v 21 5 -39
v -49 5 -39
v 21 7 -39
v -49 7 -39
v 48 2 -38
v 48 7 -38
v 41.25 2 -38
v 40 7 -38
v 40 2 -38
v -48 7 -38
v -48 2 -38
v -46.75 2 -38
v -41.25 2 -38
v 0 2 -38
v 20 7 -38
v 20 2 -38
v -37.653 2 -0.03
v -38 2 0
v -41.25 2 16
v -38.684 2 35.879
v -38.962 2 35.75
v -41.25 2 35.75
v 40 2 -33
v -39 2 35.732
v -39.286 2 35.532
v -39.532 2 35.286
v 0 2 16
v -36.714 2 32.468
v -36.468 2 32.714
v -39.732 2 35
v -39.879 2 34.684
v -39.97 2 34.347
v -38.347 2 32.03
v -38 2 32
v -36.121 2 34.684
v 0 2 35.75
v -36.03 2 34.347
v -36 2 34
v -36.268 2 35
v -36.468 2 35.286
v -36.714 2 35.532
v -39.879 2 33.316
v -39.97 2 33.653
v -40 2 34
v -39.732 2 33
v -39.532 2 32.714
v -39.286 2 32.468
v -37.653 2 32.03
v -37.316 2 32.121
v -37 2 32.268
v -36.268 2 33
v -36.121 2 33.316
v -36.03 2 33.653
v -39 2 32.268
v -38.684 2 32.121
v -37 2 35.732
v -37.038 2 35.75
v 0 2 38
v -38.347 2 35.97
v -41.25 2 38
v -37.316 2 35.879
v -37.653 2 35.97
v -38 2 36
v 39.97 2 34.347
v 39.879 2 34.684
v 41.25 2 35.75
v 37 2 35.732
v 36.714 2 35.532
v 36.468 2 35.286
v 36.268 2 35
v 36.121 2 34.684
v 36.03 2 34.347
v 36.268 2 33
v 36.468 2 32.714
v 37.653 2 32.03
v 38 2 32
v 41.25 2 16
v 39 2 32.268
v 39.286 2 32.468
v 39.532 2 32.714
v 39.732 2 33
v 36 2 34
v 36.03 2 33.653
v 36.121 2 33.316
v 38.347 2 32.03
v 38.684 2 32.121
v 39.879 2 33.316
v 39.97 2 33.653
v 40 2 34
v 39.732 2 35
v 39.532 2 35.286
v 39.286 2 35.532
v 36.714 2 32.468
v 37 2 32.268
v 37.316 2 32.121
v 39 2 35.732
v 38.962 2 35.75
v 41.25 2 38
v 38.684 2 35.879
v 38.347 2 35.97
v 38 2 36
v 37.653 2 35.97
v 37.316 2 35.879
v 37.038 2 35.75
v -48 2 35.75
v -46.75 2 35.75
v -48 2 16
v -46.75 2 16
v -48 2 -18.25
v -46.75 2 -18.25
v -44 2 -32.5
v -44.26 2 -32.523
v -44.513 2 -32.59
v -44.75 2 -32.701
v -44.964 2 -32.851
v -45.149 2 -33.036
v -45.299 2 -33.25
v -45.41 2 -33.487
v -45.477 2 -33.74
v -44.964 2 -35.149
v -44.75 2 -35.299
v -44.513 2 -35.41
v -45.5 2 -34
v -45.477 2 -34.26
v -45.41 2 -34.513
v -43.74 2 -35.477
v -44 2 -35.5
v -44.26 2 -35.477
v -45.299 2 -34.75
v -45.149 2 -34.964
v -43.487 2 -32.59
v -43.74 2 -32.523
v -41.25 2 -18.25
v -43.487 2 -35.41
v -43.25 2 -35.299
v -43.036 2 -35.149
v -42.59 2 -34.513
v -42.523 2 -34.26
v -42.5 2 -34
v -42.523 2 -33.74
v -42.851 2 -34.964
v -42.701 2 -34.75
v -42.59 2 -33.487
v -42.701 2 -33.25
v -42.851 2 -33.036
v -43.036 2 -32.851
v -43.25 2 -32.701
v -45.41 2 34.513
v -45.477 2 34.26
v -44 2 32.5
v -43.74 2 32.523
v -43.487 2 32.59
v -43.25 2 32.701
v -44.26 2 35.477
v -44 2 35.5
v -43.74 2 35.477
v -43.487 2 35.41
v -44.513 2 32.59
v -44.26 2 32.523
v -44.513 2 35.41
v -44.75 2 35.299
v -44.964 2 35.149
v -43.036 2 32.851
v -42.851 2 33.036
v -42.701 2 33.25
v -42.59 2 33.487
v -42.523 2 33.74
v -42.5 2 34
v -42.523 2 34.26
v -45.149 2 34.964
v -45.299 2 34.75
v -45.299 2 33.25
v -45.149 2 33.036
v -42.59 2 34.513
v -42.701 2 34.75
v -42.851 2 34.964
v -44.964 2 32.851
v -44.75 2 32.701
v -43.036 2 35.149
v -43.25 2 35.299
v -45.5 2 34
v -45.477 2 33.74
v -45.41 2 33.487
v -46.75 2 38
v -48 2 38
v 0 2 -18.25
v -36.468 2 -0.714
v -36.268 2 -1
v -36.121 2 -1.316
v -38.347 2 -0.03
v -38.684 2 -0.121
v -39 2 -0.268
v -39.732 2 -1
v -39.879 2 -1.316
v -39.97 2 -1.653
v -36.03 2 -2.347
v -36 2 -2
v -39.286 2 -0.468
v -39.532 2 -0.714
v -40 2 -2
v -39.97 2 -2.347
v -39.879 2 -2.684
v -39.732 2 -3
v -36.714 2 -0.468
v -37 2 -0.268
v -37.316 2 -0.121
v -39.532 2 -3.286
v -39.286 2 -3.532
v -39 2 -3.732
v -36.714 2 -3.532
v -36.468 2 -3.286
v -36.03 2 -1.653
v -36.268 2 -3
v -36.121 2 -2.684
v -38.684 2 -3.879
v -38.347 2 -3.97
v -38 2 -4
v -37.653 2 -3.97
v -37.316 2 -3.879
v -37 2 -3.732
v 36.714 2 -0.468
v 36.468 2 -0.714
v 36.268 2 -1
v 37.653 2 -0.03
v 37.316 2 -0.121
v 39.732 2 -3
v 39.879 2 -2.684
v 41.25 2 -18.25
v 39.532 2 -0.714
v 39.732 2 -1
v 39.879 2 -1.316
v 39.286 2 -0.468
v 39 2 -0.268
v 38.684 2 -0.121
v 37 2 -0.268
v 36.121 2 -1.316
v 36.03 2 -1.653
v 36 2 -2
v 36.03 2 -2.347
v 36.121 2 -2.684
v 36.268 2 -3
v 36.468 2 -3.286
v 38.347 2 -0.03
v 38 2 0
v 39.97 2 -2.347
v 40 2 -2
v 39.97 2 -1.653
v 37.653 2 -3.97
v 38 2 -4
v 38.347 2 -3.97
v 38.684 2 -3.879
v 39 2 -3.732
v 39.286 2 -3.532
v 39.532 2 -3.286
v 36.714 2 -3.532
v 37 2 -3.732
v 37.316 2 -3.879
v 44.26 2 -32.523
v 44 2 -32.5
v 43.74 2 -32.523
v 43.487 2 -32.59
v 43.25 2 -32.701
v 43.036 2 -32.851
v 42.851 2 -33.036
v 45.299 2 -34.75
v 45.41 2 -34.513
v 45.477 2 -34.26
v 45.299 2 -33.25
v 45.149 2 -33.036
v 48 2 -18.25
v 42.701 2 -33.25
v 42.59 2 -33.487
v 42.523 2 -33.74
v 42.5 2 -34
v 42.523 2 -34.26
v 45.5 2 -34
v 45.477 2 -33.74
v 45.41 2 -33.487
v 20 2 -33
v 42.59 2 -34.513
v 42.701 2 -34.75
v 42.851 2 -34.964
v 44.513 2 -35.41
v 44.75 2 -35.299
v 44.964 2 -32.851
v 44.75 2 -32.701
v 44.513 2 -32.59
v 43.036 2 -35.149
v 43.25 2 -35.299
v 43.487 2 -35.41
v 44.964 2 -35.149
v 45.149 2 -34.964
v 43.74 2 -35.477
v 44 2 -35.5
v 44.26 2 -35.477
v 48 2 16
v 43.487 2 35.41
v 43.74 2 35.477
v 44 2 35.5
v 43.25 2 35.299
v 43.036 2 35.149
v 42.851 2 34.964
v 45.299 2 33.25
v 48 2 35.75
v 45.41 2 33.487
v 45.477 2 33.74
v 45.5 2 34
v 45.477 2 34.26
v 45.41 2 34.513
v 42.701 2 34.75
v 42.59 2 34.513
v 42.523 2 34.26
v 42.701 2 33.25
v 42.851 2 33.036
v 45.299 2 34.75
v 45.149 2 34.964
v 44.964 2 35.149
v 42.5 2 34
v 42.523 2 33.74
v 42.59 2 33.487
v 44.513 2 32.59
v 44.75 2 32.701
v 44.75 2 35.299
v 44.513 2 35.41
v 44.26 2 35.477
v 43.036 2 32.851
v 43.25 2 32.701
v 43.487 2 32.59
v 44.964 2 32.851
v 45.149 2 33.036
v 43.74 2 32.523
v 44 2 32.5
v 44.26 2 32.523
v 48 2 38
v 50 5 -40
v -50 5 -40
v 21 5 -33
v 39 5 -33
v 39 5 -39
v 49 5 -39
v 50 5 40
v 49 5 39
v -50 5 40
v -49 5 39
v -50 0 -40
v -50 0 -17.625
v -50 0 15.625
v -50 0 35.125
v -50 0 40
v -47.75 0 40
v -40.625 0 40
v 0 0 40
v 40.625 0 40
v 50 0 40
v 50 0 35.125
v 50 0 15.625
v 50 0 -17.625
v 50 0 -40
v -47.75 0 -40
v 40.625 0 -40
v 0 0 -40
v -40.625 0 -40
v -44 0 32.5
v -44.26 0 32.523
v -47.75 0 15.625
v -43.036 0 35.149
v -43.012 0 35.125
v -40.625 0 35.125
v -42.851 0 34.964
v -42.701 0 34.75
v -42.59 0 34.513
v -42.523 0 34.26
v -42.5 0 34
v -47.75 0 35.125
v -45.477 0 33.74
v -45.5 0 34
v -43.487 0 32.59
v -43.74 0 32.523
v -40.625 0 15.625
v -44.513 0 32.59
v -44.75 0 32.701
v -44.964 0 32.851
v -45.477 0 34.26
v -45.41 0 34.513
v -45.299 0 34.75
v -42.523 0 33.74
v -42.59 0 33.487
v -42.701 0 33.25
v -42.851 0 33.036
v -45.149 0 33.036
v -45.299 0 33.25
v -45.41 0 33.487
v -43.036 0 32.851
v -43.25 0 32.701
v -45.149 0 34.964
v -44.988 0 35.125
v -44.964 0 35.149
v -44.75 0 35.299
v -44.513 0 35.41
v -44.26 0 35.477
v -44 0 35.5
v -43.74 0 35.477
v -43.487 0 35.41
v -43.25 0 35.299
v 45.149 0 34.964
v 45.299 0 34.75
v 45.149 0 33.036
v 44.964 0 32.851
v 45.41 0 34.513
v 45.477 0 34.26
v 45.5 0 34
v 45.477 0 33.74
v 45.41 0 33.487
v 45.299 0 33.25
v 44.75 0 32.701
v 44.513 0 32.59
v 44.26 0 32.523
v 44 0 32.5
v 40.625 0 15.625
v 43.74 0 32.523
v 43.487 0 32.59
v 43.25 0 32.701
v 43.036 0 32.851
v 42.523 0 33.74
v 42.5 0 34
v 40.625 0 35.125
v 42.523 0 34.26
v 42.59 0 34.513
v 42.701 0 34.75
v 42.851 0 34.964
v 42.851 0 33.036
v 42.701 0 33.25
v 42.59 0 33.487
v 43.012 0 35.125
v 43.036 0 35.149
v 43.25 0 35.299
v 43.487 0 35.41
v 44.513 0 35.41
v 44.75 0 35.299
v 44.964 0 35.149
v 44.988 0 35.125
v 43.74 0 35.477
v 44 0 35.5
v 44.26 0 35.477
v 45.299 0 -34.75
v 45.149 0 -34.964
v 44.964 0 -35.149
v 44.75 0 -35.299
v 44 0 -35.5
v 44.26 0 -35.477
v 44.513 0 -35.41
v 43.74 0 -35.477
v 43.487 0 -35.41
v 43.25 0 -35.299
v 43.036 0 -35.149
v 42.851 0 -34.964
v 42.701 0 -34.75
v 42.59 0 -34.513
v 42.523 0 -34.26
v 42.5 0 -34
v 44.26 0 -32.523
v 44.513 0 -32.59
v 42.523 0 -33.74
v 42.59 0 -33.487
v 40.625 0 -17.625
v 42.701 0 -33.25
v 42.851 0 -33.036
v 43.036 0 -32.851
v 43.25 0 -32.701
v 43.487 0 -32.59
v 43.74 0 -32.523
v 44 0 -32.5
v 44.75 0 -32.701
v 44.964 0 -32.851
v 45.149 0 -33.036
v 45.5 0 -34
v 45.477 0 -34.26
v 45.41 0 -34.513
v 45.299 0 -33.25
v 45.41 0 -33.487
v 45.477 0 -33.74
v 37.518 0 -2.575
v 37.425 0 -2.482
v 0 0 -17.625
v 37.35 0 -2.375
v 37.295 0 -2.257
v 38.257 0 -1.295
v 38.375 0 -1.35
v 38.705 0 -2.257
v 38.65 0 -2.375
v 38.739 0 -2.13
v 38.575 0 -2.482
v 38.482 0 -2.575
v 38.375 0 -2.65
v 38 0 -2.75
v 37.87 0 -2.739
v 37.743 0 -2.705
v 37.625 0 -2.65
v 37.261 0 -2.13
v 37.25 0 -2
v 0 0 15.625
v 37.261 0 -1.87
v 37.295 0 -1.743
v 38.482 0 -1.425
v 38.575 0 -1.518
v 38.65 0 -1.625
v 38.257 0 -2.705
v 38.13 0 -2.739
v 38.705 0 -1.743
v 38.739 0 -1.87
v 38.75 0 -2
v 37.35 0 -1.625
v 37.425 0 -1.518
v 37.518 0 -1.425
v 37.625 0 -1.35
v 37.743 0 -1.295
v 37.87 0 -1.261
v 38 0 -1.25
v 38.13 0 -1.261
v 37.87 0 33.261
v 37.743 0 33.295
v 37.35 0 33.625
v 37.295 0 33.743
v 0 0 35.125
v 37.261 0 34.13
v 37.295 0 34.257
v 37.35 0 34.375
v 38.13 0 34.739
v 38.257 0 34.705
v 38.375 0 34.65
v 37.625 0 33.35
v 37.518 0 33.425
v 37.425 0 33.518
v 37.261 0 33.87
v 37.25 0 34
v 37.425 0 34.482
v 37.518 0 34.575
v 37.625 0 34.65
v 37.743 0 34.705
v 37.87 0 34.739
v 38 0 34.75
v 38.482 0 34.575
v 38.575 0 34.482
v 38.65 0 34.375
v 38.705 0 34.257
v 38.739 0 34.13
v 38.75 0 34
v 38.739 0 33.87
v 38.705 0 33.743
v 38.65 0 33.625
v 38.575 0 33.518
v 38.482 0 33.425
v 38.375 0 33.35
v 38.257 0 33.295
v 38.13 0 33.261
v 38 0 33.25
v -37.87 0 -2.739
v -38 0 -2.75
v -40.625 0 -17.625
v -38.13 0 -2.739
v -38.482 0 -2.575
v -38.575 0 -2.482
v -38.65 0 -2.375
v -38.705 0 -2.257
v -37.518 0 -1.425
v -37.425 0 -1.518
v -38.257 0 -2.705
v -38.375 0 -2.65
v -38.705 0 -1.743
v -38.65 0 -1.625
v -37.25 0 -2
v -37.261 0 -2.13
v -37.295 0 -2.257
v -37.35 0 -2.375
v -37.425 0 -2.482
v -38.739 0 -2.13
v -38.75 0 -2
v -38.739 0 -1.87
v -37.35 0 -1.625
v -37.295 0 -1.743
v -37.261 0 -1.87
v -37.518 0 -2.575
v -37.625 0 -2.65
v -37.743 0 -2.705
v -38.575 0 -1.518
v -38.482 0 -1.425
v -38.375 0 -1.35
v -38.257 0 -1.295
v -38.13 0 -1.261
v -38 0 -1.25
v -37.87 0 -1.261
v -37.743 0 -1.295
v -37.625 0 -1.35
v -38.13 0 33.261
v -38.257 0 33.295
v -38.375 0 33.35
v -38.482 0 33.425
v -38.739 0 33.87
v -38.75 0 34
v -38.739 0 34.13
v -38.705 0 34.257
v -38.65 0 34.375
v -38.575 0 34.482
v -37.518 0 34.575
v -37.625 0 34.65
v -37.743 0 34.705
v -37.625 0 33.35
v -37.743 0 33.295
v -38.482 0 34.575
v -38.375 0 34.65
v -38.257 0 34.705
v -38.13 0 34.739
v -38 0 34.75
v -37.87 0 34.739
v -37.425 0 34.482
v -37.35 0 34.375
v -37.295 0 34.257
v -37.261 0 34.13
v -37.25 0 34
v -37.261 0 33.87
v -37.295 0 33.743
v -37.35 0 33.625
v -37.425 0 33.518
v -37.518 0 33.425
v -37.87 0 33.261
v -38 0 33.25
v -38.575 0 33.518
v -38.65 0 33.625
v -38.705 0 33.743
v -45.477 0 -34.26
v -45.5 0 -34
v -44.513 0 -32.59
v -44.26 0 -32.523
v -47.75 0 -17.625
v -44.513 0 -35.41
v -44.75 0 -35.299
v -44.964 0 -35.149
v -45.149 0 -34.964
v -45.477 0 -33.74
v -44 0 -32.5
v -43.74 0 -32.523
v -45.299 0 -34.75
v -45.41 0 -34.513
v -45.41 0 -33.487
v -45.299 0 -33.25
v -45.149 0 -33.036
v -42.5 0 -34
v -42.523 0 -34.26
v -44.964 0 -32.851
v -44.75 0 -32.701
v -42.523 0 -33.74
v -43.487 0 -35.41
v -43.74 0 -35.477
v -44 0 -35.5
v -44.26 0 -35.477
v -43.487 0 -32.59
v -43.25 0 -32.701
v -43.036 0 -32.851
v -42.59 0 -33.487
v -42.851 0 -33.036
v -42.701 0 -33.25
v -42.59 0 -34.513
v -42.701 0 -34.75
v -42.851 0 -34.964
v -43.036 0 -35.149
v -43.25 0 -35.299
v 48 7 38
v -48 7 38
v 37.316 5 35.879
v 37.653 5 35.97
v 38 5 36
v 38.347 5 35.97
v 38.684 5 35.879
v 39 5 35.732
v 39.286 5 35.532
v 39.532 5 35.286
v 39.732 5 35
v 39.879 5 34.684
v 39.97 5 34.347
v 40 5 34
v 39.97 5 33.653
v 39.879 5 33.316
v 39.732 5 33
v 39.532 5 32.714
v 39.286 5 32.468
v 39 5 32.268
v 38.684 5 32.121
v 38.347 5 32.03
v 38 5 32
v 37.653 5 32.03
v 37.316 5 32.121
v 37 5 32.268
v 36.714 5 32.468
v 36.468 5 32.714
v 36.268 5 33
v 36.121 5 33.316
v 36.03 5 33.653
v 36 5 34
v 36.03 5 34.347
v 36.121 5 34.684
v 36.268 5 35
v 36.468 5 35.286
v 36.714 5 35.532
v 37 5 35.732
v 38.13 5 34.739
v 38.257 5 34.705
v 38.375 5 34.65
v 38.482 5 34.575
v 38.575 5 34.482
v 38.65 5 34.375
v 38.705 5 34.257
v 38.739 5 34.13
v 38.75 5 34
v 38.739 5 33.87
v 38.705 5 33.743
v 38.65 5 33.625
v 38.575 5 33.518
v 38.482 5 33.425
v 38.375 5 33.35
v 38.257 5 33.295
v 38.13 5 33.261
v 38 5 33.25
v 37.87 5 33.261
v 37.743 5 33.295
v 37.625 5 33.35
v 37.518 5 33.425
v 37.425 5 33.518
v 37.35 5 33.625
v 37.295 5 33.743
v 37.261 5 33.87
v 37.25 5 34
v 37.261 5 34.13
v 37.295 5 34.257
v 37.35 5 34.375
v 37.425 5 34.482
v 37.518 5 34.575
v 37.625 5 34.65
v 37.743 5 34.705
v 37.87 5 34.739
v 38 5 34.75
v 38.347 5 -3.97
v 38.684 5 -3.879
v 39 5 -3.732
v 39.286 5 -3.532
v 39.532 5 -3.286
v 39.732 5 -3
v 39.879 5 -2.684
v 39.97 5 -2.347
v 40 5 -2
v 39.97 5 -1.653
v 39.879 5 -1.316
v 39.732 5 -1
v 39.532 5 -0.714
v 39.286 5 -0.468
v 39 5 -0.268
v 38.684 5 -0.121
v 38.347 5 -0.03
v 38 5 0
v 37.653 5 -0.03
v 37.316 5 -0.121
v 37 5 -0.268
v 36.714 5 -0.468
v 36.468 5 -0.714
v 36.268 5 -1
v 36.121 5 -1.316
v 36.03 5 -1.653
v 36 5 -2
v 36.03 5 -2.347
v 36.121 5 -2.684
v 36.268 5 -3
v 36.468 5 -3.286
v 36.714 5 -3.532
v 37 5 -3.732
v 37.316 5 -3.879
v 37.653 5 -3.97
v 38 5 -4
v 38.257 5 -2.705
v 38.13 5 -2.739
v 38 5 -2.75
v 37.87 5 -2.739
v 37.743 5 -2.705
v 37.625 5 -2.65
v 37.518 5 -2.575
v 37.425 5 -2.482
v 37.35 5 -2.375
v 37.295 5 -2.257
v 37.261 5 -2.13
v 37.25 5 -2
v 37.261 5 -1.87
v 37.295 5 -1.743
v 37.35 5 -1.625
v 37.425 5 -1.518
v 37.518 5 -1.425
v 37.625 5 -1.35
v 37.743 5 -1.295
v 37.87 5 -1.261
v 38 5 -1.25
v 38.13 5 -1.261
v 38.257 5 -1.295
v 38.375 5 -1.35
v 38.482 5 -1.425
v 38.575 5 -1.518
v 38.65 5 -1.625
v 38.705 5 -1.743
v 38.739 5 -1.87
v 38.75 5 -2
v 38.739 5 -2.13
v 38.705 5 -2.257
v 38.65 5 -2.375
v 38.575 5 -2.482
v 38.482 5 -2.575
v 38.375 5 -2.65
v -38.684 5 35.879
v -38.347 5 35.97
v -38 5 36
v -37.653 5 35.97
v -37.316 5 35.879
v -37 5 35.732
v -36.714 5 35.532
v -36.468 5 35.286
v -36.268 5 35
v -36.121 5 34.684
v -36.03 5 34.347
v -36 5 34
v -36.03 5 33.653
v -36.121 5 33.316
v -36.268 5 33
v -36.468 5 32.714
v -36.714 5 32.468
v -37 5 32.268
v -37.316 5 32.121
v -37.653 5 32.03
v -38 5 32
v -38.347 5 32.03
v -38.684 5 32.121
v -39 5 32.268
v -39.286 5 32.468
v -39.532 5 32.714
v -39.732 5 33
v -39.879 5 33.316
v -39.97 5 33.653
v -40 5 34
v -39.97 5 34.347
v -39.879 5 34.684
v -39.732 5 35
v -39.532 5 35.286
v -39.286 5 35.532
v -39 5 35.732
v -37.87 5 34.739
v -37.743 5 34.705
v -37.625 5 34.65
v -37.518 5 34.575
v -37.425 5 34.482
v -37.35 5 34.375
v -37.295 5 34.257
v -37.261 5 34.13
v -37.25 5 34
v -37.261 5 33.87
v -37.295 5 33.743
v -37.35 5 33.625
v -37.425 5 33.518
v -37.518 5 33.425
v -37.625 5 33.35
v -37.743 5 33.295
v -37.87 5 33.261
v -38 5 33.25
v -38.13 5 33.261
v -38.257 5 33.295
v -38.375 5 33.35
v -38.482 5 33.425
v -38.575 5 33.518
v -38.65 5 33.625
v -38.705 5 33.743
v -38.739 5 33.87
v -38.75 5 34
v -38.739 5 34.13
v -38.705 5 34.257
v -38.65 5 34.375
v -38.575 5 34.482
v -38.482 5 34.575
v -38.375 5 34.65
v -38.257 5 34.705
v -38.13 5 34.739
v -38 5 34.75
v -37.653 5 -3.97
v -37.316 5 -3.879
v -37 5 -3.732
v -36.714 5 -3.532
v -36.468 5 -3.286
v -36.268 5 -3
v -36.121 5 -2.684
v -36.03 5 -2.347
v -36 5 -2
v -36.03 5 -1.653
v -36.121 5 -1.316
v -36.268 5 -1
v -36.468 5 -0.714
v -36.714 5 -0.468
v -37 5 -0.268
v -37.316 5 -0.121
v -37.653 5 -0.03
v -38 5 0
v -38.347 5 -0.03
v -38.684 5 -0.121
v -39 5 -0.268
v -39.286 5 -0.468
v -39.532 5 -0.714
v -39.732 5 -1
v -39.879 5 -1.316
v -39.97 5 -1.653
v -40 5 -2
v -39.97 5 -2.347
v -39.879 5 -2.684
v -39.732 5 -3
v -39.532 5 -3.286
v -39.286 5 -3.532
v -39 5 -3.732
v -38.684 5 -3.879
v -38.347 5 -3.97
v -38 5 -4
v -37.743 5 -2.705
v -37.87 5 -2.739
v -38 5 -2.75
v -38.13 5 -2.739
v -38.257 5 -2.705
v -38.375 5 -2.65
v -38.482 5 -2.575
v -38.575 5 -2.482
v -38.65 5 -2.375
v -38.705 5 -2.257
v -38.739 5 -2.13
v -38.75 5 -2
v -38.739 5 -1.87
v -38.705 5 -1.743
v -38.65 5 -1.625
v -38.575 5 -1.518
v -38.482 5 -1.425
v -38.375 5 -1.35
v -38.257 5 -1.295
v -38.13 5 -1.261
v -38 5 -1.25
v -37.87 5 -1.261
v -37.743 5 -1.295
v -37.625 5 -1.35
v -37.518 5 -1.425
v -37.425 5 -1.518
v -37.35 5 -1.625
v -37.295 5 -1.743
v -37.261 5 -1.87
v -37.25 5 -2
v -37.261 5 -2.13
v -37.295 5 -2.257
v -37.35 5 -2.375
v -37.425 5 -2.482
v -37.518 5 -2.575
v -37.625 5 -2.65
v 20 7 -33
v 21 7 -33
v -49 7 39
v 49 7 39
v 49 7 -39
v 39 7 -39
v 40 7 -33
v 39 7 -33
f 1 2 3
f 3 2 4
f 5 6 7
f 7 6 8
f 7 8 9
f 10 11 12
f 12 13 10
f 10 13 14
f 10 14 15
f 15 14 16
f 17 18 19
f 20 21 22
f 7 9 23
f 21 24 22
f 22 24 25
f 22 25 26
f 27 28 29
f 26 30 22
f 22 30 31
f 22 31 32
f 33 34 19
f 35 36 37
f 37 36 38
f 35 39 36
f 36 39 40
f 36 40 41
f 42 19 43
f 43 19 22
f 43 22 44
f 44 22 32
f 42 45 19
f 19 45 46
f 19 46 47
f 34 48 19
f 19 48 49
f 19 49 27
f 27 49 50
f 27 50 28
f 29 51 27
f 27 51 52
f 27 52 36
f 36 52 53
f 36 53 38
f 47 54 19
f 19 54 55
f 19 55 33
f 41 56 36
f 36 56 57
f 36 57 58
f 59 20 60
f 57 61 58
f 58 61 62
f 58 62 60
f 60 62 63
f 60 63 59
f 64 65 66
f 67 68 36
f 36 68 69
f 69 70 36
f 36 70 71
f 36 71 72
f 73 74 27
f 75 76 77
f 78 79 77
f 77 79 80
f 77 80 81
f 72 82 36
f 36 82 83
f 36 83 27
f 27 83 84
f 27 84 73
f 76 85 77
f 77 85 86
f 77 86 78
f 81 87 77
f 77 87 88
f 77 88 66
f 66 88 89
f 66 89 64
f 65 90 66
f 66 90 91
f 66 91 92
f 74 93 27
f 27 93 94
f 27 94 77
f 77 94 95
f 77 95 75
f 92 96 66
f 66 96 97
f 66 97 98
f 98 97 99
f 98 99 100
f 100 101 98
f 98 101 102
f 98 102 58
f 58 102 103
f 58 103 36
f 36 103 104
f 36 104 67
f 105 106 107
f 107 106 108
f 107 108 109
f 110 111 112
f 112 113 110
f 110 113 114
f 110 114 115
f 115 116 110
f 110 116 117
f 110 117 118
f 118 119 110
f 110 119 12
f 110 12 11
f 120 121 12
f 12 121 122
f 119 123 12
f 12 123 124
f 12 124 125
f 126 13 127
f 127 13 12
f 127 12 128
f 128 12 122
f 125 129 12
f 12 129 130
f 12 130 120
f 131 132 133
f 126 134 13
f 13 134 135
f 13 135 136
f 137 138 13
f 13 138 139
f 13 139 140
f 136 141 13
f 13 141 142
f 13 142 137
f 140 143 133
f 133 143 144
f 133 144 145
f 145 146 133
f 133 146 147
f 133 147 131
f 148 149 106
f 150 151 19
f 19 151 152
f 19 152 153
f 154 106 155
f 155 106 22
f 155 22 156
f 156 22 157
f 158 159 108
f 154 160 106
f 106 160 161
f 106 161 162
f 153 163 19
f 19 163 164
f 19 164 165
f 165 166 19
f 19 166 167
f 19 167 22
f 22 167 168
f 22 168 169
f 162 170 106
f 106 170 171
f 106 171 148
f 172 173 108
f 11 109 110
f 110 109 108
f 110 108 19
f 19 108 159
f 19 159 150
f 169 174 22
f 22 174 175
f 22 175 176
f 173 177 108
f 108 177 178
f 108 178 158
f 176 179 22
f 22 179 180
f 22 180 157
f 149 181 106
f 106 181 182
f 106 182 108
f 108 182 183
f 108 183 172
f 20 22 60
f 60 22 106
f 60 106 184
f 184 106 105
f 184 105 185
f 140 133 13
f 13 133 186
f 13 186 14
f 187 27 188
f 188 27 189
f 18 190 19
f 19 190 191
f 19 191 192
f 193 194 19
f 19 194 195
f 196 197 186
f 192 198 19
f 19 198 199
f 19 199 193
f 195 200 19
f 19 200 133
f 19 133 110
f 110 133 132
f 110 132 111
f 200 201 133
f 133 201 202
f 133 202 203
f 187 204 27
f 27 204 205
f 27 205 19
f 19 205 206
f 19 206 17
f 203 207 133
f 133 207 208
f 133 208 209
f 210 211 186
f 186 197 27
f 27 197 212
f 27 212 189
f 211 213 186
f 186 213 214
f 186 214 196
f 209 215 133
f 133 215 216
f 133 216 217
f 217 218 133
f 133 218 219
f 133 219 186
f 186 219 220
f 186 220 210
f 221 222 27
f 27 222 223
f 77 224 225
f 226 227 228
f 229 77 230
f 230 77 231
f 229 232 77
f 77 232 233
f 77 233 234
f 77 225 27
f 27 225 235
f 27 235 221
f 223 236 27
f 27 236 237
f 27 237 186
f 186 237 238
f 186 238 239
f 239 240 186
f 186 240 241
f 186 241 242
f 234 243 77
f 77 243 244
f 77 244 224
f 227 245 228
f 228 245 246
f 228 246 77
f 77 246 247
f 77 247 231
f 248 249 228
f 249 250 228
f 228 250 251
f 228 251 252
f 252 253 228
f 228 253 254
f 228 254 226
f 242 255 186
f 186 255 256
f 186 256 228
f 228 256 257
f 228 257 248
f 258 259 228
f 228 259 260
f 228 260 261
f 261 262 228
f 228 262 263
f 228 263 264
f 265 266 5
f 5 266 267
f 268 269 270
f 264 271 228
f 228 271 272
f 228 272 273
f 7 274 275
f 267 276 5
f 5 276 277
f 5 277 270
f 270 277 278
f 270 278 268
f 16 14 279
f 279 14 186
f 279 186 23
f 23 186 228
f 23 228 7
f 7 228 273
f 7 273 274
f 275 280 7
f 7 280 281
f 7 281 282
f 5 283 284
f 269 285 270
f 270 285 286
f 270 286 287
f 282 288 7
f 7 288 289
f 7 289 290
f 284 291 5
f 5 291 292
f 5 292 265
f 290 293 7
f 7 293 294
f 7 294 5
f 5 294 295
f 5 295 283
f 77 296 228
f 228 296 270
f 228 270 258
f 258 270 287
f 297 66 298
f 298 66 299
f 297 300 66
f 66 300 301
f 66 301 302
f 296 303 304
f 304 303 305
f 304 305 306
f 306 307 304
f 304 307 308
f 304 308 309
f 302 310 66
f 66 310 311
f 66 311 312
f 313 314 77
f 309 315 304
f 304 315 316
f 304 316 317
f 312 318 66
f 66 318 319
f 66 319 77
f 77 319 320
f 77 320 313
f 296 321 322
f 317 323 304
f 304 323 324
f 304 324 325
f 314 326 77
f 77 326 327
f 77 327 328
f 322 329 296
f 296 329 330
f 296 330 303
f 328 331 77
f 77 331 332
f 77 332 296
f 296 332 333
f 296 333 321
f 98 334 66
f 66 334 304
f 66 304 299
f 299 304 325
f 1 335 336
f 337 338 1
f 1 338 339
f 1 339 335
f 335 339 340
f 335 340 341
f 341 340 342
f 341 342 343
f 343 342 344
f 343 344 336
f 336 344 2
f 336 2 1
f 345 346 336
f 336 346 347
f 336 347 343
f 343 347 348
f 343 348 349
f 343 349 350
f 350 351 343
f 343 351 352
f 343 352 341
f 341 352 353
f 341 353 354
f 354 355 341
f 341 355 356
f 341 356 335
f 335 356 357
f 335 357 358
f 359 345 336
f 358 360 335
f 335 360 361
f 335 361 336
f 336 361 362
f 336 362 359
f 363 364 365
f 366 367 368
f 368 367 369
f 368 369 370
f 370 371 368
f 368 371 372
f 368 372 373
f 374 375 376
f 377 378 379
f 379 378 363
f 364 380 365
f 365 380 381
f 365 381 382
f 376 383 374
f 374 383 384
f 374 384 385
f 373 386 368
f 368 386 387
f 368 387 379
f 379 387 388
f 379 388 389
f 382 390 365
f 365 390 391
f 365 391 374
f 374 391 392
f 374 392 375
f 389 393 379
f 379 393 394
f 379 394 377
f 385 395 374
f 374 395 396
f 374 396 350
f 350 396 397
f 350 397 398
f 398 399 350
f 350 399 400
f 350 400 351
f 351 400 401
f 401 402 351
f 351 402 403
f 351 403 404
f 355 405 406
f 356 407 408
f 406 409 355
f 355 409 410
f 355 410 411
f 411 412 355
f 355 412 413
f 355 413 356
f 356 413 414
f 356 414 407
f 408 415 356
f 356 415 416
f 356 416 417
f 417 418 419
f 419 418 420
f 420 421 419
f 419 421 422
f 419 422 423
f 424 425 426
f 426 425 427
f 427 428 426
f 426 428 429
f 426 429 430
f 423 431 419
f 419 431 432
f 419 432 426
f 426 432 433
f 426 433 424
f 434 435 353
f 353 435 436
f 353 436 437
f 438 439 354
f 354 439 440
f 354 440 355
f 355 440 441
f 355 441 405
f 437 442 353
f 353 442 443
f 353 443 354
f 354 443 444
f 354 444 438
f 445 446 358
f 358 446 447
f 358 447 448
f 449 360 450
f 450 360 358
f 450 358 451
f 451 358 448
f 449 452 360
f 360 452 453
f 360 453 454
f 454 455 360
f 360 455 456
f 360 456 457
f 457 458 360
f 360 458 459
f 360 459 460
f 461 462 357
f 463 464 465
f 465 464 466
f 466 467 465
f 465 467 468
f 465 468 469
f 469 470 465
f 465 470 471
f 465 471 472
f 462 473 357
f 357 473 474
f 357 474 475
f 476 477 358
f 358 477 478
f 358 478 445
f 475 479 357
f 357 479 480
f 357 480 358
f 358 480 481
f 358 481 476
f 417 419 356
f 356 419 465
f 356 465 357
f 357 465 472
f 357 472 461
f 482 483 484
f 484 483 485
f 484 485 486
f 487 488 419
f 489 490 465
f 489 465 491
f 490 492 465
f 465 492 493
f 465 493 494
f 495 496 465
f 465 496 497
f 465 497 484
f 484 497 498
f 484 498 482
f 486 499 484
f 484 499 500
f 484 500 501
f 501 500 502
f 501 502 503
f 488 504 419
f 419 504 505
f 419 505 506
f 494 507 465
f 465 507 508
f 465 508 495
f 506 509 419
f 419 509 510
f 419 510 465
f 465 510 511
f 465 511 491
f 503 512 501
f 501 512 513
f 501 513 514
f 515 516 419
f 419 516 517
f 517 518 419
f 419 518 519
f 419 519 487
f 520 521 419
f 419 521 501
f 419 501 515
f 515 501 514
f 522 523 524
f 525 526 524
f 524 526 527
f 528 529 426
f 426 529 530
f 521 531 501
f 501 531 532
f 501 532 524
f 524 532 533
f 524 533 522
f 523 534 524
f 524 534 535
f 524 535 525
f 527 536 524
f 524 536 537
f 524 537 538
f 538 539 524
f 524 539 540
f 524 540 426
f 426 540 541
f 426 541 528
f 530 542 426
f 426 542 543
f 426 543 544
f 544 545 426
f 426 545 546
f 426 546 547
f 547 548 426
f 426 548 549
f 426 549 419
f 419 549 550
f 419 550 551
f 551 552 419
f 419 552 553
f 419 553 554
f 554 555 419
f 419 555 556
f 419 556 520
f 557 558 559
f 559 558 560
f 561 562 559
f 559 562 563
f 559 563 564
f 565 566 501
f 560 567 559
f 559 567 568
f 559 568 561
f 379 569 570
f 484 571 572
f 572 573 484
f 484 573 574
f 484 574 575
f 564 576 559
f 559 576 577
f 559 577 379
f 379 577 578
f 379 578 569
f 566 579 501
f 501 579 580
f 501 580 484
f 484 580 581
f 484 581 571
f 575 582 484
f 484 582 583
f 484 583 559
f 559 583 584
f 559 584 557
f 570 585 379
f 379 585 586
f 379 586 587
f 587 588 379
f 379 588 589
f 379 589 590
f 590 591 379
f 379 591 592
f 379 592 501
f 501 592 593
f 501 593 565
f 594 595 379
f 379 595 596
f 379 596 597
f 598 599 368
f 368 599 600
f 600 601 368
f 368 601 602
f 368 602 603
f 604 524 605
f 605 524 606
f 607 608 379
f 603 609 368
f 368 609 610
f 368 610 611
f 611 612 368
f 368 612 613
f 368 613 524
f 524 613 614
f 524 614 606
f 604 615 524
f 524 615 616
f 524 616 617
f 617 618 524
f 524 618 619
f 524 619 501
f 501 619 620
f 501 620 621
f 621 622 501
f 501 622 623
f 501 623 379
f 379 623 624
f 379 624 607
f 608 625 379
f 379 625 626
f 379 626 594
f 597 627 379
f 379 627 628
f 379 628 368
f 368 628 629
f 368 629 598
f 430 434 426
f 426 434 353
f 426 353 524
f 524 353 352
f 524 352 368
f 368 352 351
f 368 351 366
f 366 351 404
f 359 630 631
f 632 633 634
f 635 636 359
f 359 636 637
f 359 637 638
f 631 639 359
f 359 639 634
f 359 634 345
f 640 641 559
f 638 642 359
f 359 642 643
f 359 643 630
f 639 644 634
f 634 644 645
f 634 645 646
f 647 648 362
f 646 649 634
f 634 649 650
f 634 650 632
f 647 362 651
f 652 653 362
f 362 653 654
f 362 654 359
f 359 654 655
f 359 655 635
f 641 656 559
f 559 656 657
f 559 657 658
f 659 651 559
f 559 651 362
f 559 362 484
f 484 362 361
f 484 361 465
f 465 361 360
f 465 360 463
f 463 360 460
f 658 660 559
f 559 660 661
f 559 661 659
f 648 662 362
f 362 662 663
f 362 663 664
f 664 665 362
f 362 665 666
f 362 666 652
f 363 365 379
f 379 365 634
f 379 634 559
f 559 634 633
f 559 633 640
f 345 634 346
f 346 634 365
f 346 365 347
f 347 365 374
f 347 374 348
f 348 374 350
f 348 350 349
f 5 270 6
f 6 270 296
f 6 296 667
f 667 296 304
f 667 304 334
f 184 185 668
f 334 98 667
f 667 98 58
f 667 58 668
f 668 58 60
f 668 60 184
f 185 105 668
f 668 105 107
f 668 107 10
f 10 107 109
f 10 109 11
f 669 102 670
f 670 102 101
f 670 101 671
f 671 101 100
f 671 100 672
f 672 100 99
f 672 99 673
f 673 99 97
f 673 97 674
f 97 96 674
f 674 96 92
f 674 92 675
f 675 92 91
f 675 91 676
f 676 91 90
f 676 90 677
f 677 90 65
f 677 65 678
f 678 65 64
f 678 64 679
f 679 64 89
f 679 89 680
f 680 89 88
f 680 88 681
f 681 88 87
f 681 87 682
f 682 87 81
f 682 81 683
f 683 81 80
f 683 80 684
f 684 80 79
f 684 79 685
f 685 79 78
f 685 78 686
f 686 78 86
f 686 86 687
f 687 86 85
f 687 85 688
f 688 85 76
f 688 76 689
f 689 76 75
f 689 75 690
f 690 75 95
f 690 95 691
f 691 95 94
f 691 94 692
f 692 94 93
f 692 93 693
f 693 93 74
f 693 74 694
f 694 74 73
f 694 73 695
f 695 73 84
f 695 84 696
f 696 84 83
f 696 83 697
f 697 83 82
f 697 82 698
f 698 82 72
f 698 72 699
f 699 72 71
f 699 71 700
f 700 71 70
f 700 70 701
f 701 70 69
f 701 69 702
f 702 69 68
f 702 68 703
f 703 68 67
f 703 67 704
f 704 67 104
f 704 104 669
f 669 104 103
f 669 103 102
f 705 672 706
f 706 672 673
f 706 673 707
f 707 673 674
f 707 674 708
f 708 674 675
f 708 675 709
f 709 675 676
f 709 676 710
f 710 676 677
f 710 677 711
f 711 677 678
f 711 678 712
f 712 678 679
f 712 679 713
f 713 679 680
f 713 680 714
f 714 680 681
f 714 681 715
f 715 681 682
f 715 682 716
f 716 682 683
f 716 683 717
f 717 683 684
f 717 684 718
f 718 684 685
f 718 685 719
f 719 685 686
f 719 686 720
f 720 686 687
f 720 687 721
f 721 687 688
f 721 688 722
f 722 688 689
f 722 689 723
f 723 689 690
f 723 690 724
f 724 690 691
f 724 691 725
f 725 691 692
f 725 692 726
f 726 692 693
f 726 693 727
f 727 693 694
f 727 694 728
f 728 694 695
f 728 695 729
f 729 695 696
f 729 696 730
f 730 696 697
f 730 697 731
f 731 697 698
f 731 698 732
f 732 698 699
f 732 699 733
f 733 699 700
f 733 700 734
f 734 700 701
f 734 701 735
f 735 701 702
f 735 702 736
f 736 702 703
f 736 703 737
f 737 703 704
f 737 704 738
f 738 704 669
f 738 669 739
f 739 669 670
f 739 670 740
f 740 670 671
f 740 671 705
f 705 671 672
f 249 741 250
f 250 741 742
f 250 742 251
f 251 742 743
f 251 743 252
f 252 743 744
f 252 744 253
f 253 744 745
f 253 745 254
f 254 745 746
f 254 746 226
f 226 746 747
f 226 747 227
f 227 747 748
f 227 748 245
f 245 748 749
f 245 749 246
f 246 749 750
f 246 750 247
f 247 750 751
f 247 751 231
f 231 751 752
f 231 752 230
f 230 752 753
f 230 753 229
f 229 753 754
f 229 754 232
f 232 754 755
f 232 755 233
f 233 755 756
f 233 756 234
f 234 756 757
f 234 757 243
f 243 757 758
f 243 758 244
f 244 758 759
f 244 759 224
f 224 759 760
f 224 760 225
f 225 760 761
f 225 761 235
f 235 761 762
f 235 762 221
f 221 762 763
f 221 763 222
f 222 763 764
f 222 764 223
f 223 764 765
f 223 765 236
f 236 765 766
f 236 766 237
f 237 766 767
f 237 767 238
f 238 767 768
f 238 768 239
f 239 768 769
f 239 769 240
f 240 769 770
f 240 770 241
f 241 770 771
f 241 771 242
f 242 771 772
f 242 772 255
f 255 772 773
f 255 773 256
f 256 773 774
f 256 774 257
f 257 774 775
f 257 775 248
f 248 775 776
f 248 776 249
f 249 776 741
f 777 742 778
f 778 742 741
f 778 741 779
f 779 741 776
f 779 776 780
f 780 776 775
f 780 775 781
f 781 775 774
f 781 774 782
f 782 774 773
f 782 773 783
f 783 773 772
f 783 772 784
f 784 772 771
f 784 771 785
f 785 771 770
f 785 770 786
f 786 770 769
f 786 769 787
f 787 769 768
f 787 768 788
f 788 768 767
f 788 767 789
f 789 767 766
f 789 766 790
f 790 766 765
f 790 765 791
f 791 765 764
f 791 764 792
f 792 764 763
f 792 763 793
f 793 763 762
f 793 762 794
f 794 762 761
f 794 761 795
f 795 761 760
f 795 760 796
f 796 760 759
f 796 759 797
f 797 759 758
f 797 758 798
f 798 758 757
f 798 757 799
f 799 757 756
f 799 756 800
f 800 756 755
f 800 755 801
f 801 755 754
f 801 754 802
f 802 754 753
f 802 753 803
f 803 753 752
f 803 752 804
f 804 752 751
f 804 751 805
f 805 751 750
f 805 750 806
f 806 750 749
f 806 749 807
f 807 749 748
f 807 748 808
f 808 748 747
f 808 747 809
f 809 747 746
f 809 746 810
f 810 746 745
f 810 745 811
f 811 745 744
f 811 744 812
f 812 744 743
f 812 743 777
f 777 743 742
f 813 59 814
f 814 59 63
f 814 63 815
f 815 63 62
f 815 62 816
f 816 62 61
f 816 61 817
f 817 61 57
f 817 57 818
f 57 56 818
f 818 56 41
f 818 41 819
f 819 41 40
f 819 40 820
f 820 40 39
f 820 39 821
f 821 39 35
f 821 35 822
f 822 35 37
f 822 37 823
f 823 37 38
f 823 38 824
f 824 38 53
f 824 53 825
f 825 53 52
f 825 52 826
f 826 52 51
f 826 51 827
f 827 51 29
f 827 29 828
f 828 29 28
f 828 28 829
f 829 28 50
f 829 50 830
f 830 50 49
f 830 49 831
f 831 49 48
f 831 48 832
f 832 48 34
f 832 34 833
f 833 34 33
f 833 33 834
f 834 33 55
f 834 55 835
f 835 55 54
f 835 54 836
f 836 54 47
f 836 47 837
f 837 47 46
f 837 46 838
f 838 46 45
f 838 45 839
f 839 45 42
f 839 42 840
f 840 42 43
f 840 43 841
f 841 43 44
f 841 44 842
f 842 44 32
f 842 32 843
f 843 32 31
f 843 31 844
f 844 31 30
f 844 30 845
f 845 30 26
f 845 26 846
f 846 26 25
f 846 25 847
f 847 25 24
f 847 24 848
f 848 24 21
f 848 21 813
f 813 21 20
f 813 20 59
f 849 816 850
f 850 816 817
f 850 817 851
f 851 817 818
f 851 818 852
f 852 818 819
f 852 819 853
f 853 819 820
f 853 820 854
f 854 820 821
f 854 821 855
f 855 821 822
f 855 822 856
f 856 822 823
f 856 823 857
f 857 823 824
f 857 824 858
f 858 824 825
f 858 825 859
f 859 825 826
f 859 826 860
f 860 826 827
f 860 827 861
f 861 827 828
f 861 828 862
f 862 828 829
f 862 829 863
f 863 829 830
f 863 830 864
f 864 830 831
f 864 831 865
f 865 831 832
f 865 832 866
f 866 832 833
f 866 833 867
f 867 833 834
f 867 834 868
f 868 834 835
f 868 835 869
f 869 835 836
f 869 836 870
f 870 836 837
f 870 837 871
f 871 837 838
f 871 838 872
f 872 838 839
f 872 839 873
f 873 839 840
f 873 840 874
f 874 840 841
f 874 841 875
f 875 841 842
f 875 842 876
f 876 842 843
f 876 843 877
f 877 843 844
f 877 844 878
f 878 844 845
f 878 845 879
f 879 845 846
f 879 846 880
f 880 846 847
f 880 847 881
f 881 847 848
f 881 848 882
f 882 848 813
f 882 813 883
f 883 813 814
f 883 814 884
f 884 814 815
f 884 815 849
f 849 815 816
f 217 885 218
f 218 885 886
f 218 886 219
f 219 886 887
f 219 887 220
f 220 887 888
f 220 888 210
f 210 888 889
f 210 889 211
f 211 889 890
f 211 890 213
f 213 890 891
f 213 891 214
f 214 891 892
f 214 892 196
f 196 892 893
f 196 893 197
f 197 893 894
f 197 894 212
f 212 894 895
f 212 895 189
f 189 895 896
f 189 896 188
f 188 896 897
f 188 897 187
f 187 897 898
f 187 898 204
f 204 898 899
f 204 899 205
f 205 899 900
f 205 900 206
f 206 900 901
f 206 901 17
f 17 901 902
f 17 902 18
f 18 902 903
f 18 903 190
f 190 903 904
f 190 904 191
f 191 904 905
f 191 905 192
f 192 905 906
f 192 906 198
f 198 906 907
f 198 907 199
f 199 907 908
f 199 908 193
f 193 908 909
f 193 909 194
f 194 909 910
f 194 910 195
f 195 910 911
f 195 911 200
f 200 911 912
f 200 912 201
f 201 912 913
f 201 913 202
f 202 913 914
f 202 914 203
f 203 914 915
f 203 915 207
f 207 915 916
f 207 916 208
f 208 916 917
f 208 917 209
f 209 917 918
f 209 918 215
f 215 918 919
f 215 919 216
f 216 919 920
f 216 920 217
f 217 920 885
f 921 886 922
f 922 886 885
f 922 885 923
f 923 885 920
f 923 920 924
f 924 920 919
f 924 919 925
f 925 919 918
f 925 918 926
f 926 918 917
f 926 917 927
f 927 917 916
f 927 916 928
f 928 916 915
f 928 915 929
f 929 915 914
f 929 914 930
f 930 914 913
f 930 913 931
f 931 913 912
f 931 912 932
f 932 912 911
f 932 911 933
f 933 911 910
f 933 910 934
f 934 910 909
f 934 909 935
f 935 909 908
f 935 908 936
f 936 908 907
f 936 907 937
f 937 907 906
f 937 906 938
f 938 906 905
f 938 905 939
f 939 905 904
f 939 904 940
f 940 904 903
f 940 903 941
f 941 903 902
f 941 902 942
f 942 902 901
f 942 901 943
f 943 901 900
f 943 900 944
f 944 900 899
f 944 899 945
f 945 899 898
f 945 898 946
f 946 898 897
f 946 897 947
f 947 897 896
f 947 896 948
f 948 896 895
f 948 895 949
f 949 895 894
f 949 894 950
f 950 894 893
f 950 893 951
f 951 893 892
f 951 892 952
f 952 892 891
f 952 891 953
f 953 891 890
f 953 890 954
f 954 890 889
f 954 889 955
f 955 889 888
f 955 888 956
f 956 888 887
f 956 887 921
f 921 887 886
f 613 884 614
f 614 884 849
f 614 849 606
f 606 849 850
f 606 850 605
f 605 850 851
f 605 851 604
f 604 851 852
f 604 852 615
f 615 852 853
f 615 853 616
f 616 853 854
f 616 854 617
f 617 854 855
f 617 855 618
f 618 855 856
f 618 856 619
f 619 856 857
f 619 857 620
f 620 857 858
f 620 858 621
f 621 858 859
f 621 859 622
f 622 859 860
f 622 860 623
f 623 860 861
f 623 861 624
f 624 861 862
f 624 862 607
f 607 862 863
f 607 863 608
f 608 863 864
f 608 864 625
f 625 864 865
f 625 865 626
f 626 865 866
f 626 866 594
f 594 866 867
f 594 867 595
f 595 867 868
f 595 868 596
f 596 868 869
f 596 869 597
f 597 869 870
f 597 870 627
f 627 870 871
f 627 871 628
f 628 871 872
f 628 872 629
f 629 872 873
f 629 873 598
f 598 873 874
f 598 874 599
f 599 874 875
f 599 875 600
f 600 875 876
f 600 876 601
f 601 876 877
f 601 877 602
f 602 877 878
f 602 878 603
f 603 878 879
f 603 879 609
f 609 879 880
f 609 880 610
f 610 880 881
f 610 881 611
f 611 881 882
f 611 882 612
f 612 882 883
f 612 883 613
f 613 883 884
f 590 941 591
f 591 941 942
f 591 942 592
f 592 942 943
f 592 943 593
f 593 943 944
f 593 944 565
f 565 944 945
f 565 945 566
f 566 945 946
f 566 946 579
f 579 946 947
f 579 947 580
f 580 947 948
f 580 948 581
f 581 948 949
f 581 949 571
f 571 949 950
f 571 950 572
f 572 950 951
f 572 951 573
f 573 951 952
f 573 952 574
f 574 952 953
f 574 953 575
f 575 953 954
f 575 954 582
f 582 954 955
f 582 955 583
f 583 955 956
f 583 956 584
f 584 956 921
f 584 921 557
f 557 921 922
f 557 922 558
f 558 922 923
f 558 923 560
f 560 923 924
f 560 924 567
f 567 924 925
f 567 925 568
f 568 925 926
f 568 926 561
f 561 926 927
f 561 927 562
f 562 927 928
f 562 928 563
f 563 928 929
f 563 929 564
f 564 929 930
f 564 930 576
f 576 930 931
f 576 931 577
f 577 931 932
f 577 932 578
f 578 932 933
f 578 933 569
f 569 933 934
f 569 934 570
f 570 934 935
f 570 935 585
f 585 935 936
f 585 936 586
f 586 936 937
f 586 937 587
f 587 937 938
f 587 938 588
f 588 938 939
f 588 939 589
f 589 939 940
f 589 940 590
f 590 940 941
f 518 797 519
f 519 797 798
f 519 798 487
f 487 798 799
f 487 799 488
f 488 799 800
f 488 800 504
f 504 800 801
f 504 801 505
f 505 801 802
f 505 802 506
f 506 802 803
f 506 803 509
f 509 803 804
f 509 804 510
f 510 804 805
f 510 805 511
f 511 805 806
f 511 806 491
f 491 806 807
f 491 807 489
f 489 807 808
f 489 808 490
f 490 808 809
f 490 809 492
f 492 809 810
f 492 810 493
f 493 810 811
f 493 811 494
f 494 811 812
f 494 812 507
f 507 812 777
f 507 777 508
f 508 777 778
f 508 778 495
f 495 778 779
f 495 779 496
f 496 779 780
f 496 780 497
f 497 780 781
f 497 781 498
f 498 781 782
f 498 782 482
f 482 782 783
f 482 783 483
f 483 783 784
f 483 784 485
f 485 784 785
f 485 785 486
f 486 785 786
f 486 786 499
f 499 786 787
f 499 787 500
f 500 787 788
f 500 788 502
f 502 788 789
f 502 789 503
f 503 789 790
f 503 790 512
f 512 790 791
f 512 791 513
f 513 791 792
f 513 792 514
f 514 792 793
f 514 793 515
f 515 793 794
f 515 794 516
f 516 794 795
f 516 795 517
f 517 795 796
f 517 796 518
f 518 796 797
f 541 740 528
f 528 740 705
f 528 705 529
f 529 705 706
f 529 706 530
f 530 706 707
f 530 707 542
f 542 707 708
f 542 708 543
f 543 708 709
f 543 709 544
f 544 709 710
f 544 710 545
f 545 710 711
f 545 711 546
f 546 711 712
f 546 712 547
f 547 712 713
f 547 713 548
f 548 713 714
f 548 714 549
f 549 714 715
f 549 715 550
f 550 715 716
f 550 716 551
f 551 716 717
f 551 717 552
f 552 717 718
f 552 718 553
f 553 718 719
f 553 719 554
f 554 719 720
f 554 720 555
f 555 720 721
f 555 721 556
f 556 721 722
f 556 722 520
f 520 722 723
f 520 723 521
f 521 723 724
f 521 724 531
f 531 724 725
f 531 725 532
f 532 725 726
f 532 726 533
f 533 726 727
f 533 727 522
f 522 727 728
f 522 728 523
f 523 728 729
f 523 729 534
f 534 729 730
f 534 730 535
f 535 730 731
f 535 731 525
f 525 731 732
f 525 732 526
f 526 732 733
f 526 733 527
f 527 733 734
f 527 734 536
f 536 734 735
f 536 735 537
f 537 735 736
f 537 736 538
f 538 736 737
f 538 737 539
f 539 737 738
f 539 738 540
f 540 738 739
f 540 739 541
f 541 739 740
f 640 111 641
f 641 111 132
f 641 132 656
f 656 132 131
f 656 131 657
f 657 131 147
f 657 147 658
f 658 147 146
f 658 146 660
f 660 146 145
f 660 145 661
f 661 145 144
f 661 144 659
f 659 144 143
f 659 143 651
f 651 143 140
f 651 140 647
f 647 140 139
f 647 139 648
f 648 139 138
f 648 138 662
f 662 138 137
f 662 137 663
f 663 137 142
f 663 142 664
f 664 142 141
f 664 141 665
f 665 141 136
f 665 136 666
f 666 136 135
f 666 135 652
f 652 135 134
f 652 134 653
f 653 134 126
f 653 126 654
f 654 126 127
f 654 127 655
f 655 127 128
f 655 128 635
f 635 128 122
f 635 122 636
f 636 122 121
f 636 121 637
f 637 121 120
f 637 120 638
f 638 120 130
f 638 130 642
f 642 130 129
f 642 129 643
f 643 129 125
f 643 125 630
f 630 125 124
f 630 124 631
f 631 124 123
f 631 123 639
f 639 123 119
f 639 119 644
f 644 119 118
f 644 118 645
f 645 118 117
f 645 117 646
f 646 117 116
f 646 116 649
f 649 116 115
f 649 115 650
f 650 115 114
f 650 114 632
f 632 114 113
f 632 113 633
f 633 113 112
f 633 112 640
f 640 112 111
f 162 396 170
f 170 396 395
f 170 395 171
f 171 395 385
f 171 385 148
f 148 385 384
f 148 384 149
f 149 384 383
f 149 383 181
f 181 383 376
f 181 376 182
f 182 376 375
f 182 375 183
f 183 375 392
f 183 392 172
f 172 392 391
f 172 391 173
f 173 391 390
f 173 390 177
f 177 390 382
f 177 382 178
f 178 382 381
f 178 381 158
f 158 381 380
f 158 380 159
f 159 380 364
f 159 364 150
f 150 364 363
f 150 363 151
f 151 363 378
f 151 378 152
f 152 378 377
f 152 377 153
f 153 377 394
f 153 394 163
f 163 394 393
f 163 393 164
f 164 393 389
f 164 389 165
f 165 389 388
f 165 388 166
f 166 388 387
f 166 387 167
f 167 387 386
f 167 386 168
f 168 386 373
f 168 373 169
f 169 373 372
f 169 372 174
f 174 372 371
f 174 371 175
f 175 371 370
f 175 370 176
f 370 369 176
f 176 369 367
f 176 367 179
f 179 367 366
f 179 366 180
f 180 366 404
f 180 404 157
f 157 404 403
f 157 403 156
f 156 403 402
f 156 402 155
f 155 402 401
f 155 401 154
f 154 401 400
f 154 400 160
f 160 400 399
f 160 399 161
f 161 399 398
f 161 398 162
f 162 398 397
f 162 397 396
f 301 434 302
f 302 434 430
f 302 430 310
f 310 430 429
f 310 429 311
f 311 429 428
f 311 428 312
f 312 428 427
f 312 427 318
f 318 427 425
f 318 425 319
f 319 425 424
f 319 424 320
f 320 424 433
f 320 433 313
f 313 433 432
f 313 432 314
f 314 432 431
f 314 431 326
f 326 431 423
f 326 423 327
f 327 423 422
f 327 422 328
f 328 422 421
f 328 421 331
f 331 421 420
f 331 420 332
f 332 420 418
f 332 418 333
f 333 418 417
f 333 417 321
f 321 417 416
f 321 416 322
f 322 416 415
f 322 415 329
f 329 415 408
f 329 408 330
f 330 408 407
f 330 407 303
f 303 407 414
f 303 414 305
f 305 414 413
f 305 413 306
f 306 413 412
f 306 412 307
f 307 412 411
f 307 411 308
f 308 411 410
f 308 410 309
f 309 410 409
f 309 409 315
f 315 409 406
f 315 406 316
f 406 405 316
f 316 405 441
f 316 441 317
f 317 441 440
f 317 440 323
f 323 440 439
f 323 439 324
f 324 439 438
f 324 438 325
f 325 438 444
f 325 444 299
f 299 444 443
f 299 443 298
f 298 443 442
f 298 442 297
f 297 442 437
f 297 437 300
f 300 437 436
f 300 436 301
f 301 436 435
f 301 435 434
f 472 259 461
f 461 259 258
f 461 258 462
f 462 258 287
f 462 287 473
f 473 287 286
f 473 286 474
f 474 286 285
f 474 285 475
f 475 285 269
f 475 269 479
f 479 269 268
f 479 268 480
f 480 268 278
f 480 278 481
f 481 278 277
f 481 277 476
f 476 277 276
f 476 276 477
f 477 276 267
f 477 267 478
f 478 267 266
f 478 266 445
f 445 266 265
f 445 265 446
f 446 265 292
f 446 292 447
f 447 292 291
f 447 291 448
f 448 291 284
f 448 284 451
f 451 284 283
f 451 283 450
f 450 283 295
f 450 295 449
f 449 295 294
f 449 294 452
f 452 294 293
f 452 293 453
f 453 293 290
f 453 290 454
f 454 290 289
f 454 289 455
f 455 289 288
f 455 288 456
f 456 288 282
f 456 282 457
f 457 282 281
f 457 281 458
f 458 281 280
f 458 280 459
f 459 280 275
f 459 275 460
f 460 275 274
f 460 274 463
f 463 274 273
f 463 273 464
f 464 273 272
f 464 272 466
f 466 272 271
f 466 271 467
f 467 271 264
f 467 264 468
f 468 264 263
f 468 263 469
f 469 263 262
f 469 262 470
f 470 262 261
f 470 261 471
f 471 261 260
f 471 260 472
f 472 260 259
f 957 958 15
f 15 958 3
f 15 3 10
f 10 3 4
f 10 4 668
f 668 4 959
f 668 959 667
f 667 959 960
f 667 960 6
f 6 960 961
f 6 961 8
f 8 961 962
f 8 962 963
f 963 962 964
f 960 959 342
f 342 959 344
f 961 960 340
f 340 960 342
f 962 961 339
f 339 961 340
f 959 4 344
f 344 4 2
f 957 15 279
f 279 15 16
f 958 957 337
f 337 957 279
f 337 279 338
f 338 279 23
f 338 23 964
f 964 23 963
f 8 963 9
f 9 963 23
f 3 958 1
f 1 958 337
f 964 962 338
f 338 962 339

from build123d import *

# Parameters (mm, degrees)
ESQUISSE1_W             = 100
ESQUISSE1_H             = 80
BOSS_EXTRU_1_DEPTH      = 2
ESQUISSE2_W             = 100
ESQUISSE2_H             = 80
ESQUISSE2_W_2           = 96
ESQUISSE2_H_2           = 76
ESQUISSE2_R             = 2
BOSS_EXTRU_2_DEPTH      = 3
ESQUISSE3_R             = 0.75
ENL_V_MAT_EXTRU_1_DEPTH = 5
ESQUISSE4_R             = 1.5
ENL_V_MAT_EXTRU_2_DEPTH = 5
ESQUISSE5_W             = 98
ESQUISSE5_H             = 78
ESQUISSE5_W_2           = 96
ESQUISSE5_H_2           = 76
BOSS_EXTRU_3_DEPTH      = 2
ESQUISSE6_W             = 20
ESQUISSE6_H             = 5
BOSS_EXTRU_4_DEPTH      = 3
ESQUISSE7_W             = 1
ESQUISSE7_H             = 5
BOSS_EXTRU_5_DEPTH      = 2
ESQUISSE8_W             = 18
ESQUISSE8_H             = 2
ENL_V_MAT_EXTRU_3_DEPTH = 2


with BuildPart() as part:
    # Esquisse1 → Boss.-Extru.1 (new body)
    with BuildSketch(Plane(origin=(0, 0, 0), x_dir=(1, 0, 0), z_dir=(0, 1, 0))):
        Rectangle(ESQUISSE1_W, ESQUISSE1_H)
    extrude(amount=BOSS_EXTRU_1_DEPTH)

    # Esquisse2 → Boss.-Extru.2 (add)
    with BuildSketch(Plane(origin=(0, 2, 0), x_dir=(1, 0, 0), z_dir=(0, 1, 0))):
        Rectangle(ESQUISSE2_W, ESQUISSE2_H)
        Rectangle(ESQUISSE2_W_2, ESQUISSE2_H_2, mode=Mode.SUBTRACT)
        with Locations((38, -34)):
            Circle(ESQUISSE2_R)
        with Locations((38, 2)):
            Circle(ESQUISSE2_R)
        with Locations((-38, -34)):
            Circle(ESQUISSE2_R)
        with Locations((-38, 2)):
            Circle(ESQUISSE2_R)
    extrude(amount=BOSS_EXTRU_2_DEPTH)

    # Esquisse3 → Enlèv. mat.-Extru.1 (cut)
    with BuildSketch(Plane(origin=(0, 5, 0), x_dir=(1, 0, 0), z_dir=(0, 1, 0))):
        with Locations((-38, 2)):
            Circle(ESQUISSE3_R)
        with Locations((-38, -34)):
            Circle(ESQUISSE3_R)
        with Locations((38, 2)):
            Circle(ESQUISSE3_R)
        with Locations((38, -34)):
            Circle(ESQUISSE3_R)
    extrude(amount=-ENL_V_MAT_EXTRU_1_DEPTH, mode=Mode.SUBTRACT)

    # Esquisse4 → Enlèv. mat.-Extru.2 (cut)
    with BuildSketch(Plane(origin=(0, 2, 0), x_dir=(1, 0, 0), z_dir=(0, 1, 0))):
        with Locations((-44, 34)):
            Circle(ESQUISSE4_R)
        with Locations((44, 34)):
            Circle(ESQUISSE4_R)
        with Locations((44, -34)):
            Circle(ESQUISSE4_R)
        with Locations((-44, -34)):
            Circle(ESQUISSE4_R)
    extrude(amount=-ENL_V_MAT_EXTRU_2_DEPTH, mode=Mode.SUBTRACT)

    # Esquisse5 → Boss.-Extru.3 (add)
    with BuildSketch(Plane(origin=(0, 5, 0), x_dir=(1, 0, 0), z_dir=(0, 1, 0))):
        Rectangle(ESQUISSE5_W, ESQUISSE5_H)
        Rectangle(ESQUISSE5_W_2, ESQUISSE5_H_2, mode=Mode.SUBTRACT)
    extrude(amount=BOSS_EXTRU_3_DEPTH)

    # Esquisse6 → Boss.-Extru.4 (add)
    with BuildSketch(Plane(origin=(0, 2, 0), x_dir=(1, 0, 0), z_dir=(0, 1, 0))):
        with Locations((30, 35.5)):
            Rectangle(ESQUISSE6_W, ESQUISSE6_H)
    extrude(amount=BOSS_EXTRU_4_DEPTH)

    # Esquisse7 → Boss.-Extru.5 (add)
    with BuildSketch(Plane(origin=(0, 5, 0), x_dir=(1, 0, 0), z_dir=(0, 1, 0))):
        with Locations((20.5, 35.5)):
            Rectangle(ESQUISSE7_W, ESQUISSE7_H)
        with Locations((39.5, 35.5)):
            Rectangle(ESQUISSE7_W, ESQUISSE7_H)
    extrude(amount=BOSS_EXTRU_5_DEPTH)

    # Esquisse8 → Enlèv. mat.-Extru.3 (cut)
    with BuildSketch(Plane.XY.offset(-38)):
        with Locations((30, 6)):
            Rectangle(ESQUISSE8_W, ESQUISSE8_H)
    extrude(amount=-ENL_V_MAT_EXTRU_3_DEPTH, mode=Mode.SUBTRACT)


solid = part.part
